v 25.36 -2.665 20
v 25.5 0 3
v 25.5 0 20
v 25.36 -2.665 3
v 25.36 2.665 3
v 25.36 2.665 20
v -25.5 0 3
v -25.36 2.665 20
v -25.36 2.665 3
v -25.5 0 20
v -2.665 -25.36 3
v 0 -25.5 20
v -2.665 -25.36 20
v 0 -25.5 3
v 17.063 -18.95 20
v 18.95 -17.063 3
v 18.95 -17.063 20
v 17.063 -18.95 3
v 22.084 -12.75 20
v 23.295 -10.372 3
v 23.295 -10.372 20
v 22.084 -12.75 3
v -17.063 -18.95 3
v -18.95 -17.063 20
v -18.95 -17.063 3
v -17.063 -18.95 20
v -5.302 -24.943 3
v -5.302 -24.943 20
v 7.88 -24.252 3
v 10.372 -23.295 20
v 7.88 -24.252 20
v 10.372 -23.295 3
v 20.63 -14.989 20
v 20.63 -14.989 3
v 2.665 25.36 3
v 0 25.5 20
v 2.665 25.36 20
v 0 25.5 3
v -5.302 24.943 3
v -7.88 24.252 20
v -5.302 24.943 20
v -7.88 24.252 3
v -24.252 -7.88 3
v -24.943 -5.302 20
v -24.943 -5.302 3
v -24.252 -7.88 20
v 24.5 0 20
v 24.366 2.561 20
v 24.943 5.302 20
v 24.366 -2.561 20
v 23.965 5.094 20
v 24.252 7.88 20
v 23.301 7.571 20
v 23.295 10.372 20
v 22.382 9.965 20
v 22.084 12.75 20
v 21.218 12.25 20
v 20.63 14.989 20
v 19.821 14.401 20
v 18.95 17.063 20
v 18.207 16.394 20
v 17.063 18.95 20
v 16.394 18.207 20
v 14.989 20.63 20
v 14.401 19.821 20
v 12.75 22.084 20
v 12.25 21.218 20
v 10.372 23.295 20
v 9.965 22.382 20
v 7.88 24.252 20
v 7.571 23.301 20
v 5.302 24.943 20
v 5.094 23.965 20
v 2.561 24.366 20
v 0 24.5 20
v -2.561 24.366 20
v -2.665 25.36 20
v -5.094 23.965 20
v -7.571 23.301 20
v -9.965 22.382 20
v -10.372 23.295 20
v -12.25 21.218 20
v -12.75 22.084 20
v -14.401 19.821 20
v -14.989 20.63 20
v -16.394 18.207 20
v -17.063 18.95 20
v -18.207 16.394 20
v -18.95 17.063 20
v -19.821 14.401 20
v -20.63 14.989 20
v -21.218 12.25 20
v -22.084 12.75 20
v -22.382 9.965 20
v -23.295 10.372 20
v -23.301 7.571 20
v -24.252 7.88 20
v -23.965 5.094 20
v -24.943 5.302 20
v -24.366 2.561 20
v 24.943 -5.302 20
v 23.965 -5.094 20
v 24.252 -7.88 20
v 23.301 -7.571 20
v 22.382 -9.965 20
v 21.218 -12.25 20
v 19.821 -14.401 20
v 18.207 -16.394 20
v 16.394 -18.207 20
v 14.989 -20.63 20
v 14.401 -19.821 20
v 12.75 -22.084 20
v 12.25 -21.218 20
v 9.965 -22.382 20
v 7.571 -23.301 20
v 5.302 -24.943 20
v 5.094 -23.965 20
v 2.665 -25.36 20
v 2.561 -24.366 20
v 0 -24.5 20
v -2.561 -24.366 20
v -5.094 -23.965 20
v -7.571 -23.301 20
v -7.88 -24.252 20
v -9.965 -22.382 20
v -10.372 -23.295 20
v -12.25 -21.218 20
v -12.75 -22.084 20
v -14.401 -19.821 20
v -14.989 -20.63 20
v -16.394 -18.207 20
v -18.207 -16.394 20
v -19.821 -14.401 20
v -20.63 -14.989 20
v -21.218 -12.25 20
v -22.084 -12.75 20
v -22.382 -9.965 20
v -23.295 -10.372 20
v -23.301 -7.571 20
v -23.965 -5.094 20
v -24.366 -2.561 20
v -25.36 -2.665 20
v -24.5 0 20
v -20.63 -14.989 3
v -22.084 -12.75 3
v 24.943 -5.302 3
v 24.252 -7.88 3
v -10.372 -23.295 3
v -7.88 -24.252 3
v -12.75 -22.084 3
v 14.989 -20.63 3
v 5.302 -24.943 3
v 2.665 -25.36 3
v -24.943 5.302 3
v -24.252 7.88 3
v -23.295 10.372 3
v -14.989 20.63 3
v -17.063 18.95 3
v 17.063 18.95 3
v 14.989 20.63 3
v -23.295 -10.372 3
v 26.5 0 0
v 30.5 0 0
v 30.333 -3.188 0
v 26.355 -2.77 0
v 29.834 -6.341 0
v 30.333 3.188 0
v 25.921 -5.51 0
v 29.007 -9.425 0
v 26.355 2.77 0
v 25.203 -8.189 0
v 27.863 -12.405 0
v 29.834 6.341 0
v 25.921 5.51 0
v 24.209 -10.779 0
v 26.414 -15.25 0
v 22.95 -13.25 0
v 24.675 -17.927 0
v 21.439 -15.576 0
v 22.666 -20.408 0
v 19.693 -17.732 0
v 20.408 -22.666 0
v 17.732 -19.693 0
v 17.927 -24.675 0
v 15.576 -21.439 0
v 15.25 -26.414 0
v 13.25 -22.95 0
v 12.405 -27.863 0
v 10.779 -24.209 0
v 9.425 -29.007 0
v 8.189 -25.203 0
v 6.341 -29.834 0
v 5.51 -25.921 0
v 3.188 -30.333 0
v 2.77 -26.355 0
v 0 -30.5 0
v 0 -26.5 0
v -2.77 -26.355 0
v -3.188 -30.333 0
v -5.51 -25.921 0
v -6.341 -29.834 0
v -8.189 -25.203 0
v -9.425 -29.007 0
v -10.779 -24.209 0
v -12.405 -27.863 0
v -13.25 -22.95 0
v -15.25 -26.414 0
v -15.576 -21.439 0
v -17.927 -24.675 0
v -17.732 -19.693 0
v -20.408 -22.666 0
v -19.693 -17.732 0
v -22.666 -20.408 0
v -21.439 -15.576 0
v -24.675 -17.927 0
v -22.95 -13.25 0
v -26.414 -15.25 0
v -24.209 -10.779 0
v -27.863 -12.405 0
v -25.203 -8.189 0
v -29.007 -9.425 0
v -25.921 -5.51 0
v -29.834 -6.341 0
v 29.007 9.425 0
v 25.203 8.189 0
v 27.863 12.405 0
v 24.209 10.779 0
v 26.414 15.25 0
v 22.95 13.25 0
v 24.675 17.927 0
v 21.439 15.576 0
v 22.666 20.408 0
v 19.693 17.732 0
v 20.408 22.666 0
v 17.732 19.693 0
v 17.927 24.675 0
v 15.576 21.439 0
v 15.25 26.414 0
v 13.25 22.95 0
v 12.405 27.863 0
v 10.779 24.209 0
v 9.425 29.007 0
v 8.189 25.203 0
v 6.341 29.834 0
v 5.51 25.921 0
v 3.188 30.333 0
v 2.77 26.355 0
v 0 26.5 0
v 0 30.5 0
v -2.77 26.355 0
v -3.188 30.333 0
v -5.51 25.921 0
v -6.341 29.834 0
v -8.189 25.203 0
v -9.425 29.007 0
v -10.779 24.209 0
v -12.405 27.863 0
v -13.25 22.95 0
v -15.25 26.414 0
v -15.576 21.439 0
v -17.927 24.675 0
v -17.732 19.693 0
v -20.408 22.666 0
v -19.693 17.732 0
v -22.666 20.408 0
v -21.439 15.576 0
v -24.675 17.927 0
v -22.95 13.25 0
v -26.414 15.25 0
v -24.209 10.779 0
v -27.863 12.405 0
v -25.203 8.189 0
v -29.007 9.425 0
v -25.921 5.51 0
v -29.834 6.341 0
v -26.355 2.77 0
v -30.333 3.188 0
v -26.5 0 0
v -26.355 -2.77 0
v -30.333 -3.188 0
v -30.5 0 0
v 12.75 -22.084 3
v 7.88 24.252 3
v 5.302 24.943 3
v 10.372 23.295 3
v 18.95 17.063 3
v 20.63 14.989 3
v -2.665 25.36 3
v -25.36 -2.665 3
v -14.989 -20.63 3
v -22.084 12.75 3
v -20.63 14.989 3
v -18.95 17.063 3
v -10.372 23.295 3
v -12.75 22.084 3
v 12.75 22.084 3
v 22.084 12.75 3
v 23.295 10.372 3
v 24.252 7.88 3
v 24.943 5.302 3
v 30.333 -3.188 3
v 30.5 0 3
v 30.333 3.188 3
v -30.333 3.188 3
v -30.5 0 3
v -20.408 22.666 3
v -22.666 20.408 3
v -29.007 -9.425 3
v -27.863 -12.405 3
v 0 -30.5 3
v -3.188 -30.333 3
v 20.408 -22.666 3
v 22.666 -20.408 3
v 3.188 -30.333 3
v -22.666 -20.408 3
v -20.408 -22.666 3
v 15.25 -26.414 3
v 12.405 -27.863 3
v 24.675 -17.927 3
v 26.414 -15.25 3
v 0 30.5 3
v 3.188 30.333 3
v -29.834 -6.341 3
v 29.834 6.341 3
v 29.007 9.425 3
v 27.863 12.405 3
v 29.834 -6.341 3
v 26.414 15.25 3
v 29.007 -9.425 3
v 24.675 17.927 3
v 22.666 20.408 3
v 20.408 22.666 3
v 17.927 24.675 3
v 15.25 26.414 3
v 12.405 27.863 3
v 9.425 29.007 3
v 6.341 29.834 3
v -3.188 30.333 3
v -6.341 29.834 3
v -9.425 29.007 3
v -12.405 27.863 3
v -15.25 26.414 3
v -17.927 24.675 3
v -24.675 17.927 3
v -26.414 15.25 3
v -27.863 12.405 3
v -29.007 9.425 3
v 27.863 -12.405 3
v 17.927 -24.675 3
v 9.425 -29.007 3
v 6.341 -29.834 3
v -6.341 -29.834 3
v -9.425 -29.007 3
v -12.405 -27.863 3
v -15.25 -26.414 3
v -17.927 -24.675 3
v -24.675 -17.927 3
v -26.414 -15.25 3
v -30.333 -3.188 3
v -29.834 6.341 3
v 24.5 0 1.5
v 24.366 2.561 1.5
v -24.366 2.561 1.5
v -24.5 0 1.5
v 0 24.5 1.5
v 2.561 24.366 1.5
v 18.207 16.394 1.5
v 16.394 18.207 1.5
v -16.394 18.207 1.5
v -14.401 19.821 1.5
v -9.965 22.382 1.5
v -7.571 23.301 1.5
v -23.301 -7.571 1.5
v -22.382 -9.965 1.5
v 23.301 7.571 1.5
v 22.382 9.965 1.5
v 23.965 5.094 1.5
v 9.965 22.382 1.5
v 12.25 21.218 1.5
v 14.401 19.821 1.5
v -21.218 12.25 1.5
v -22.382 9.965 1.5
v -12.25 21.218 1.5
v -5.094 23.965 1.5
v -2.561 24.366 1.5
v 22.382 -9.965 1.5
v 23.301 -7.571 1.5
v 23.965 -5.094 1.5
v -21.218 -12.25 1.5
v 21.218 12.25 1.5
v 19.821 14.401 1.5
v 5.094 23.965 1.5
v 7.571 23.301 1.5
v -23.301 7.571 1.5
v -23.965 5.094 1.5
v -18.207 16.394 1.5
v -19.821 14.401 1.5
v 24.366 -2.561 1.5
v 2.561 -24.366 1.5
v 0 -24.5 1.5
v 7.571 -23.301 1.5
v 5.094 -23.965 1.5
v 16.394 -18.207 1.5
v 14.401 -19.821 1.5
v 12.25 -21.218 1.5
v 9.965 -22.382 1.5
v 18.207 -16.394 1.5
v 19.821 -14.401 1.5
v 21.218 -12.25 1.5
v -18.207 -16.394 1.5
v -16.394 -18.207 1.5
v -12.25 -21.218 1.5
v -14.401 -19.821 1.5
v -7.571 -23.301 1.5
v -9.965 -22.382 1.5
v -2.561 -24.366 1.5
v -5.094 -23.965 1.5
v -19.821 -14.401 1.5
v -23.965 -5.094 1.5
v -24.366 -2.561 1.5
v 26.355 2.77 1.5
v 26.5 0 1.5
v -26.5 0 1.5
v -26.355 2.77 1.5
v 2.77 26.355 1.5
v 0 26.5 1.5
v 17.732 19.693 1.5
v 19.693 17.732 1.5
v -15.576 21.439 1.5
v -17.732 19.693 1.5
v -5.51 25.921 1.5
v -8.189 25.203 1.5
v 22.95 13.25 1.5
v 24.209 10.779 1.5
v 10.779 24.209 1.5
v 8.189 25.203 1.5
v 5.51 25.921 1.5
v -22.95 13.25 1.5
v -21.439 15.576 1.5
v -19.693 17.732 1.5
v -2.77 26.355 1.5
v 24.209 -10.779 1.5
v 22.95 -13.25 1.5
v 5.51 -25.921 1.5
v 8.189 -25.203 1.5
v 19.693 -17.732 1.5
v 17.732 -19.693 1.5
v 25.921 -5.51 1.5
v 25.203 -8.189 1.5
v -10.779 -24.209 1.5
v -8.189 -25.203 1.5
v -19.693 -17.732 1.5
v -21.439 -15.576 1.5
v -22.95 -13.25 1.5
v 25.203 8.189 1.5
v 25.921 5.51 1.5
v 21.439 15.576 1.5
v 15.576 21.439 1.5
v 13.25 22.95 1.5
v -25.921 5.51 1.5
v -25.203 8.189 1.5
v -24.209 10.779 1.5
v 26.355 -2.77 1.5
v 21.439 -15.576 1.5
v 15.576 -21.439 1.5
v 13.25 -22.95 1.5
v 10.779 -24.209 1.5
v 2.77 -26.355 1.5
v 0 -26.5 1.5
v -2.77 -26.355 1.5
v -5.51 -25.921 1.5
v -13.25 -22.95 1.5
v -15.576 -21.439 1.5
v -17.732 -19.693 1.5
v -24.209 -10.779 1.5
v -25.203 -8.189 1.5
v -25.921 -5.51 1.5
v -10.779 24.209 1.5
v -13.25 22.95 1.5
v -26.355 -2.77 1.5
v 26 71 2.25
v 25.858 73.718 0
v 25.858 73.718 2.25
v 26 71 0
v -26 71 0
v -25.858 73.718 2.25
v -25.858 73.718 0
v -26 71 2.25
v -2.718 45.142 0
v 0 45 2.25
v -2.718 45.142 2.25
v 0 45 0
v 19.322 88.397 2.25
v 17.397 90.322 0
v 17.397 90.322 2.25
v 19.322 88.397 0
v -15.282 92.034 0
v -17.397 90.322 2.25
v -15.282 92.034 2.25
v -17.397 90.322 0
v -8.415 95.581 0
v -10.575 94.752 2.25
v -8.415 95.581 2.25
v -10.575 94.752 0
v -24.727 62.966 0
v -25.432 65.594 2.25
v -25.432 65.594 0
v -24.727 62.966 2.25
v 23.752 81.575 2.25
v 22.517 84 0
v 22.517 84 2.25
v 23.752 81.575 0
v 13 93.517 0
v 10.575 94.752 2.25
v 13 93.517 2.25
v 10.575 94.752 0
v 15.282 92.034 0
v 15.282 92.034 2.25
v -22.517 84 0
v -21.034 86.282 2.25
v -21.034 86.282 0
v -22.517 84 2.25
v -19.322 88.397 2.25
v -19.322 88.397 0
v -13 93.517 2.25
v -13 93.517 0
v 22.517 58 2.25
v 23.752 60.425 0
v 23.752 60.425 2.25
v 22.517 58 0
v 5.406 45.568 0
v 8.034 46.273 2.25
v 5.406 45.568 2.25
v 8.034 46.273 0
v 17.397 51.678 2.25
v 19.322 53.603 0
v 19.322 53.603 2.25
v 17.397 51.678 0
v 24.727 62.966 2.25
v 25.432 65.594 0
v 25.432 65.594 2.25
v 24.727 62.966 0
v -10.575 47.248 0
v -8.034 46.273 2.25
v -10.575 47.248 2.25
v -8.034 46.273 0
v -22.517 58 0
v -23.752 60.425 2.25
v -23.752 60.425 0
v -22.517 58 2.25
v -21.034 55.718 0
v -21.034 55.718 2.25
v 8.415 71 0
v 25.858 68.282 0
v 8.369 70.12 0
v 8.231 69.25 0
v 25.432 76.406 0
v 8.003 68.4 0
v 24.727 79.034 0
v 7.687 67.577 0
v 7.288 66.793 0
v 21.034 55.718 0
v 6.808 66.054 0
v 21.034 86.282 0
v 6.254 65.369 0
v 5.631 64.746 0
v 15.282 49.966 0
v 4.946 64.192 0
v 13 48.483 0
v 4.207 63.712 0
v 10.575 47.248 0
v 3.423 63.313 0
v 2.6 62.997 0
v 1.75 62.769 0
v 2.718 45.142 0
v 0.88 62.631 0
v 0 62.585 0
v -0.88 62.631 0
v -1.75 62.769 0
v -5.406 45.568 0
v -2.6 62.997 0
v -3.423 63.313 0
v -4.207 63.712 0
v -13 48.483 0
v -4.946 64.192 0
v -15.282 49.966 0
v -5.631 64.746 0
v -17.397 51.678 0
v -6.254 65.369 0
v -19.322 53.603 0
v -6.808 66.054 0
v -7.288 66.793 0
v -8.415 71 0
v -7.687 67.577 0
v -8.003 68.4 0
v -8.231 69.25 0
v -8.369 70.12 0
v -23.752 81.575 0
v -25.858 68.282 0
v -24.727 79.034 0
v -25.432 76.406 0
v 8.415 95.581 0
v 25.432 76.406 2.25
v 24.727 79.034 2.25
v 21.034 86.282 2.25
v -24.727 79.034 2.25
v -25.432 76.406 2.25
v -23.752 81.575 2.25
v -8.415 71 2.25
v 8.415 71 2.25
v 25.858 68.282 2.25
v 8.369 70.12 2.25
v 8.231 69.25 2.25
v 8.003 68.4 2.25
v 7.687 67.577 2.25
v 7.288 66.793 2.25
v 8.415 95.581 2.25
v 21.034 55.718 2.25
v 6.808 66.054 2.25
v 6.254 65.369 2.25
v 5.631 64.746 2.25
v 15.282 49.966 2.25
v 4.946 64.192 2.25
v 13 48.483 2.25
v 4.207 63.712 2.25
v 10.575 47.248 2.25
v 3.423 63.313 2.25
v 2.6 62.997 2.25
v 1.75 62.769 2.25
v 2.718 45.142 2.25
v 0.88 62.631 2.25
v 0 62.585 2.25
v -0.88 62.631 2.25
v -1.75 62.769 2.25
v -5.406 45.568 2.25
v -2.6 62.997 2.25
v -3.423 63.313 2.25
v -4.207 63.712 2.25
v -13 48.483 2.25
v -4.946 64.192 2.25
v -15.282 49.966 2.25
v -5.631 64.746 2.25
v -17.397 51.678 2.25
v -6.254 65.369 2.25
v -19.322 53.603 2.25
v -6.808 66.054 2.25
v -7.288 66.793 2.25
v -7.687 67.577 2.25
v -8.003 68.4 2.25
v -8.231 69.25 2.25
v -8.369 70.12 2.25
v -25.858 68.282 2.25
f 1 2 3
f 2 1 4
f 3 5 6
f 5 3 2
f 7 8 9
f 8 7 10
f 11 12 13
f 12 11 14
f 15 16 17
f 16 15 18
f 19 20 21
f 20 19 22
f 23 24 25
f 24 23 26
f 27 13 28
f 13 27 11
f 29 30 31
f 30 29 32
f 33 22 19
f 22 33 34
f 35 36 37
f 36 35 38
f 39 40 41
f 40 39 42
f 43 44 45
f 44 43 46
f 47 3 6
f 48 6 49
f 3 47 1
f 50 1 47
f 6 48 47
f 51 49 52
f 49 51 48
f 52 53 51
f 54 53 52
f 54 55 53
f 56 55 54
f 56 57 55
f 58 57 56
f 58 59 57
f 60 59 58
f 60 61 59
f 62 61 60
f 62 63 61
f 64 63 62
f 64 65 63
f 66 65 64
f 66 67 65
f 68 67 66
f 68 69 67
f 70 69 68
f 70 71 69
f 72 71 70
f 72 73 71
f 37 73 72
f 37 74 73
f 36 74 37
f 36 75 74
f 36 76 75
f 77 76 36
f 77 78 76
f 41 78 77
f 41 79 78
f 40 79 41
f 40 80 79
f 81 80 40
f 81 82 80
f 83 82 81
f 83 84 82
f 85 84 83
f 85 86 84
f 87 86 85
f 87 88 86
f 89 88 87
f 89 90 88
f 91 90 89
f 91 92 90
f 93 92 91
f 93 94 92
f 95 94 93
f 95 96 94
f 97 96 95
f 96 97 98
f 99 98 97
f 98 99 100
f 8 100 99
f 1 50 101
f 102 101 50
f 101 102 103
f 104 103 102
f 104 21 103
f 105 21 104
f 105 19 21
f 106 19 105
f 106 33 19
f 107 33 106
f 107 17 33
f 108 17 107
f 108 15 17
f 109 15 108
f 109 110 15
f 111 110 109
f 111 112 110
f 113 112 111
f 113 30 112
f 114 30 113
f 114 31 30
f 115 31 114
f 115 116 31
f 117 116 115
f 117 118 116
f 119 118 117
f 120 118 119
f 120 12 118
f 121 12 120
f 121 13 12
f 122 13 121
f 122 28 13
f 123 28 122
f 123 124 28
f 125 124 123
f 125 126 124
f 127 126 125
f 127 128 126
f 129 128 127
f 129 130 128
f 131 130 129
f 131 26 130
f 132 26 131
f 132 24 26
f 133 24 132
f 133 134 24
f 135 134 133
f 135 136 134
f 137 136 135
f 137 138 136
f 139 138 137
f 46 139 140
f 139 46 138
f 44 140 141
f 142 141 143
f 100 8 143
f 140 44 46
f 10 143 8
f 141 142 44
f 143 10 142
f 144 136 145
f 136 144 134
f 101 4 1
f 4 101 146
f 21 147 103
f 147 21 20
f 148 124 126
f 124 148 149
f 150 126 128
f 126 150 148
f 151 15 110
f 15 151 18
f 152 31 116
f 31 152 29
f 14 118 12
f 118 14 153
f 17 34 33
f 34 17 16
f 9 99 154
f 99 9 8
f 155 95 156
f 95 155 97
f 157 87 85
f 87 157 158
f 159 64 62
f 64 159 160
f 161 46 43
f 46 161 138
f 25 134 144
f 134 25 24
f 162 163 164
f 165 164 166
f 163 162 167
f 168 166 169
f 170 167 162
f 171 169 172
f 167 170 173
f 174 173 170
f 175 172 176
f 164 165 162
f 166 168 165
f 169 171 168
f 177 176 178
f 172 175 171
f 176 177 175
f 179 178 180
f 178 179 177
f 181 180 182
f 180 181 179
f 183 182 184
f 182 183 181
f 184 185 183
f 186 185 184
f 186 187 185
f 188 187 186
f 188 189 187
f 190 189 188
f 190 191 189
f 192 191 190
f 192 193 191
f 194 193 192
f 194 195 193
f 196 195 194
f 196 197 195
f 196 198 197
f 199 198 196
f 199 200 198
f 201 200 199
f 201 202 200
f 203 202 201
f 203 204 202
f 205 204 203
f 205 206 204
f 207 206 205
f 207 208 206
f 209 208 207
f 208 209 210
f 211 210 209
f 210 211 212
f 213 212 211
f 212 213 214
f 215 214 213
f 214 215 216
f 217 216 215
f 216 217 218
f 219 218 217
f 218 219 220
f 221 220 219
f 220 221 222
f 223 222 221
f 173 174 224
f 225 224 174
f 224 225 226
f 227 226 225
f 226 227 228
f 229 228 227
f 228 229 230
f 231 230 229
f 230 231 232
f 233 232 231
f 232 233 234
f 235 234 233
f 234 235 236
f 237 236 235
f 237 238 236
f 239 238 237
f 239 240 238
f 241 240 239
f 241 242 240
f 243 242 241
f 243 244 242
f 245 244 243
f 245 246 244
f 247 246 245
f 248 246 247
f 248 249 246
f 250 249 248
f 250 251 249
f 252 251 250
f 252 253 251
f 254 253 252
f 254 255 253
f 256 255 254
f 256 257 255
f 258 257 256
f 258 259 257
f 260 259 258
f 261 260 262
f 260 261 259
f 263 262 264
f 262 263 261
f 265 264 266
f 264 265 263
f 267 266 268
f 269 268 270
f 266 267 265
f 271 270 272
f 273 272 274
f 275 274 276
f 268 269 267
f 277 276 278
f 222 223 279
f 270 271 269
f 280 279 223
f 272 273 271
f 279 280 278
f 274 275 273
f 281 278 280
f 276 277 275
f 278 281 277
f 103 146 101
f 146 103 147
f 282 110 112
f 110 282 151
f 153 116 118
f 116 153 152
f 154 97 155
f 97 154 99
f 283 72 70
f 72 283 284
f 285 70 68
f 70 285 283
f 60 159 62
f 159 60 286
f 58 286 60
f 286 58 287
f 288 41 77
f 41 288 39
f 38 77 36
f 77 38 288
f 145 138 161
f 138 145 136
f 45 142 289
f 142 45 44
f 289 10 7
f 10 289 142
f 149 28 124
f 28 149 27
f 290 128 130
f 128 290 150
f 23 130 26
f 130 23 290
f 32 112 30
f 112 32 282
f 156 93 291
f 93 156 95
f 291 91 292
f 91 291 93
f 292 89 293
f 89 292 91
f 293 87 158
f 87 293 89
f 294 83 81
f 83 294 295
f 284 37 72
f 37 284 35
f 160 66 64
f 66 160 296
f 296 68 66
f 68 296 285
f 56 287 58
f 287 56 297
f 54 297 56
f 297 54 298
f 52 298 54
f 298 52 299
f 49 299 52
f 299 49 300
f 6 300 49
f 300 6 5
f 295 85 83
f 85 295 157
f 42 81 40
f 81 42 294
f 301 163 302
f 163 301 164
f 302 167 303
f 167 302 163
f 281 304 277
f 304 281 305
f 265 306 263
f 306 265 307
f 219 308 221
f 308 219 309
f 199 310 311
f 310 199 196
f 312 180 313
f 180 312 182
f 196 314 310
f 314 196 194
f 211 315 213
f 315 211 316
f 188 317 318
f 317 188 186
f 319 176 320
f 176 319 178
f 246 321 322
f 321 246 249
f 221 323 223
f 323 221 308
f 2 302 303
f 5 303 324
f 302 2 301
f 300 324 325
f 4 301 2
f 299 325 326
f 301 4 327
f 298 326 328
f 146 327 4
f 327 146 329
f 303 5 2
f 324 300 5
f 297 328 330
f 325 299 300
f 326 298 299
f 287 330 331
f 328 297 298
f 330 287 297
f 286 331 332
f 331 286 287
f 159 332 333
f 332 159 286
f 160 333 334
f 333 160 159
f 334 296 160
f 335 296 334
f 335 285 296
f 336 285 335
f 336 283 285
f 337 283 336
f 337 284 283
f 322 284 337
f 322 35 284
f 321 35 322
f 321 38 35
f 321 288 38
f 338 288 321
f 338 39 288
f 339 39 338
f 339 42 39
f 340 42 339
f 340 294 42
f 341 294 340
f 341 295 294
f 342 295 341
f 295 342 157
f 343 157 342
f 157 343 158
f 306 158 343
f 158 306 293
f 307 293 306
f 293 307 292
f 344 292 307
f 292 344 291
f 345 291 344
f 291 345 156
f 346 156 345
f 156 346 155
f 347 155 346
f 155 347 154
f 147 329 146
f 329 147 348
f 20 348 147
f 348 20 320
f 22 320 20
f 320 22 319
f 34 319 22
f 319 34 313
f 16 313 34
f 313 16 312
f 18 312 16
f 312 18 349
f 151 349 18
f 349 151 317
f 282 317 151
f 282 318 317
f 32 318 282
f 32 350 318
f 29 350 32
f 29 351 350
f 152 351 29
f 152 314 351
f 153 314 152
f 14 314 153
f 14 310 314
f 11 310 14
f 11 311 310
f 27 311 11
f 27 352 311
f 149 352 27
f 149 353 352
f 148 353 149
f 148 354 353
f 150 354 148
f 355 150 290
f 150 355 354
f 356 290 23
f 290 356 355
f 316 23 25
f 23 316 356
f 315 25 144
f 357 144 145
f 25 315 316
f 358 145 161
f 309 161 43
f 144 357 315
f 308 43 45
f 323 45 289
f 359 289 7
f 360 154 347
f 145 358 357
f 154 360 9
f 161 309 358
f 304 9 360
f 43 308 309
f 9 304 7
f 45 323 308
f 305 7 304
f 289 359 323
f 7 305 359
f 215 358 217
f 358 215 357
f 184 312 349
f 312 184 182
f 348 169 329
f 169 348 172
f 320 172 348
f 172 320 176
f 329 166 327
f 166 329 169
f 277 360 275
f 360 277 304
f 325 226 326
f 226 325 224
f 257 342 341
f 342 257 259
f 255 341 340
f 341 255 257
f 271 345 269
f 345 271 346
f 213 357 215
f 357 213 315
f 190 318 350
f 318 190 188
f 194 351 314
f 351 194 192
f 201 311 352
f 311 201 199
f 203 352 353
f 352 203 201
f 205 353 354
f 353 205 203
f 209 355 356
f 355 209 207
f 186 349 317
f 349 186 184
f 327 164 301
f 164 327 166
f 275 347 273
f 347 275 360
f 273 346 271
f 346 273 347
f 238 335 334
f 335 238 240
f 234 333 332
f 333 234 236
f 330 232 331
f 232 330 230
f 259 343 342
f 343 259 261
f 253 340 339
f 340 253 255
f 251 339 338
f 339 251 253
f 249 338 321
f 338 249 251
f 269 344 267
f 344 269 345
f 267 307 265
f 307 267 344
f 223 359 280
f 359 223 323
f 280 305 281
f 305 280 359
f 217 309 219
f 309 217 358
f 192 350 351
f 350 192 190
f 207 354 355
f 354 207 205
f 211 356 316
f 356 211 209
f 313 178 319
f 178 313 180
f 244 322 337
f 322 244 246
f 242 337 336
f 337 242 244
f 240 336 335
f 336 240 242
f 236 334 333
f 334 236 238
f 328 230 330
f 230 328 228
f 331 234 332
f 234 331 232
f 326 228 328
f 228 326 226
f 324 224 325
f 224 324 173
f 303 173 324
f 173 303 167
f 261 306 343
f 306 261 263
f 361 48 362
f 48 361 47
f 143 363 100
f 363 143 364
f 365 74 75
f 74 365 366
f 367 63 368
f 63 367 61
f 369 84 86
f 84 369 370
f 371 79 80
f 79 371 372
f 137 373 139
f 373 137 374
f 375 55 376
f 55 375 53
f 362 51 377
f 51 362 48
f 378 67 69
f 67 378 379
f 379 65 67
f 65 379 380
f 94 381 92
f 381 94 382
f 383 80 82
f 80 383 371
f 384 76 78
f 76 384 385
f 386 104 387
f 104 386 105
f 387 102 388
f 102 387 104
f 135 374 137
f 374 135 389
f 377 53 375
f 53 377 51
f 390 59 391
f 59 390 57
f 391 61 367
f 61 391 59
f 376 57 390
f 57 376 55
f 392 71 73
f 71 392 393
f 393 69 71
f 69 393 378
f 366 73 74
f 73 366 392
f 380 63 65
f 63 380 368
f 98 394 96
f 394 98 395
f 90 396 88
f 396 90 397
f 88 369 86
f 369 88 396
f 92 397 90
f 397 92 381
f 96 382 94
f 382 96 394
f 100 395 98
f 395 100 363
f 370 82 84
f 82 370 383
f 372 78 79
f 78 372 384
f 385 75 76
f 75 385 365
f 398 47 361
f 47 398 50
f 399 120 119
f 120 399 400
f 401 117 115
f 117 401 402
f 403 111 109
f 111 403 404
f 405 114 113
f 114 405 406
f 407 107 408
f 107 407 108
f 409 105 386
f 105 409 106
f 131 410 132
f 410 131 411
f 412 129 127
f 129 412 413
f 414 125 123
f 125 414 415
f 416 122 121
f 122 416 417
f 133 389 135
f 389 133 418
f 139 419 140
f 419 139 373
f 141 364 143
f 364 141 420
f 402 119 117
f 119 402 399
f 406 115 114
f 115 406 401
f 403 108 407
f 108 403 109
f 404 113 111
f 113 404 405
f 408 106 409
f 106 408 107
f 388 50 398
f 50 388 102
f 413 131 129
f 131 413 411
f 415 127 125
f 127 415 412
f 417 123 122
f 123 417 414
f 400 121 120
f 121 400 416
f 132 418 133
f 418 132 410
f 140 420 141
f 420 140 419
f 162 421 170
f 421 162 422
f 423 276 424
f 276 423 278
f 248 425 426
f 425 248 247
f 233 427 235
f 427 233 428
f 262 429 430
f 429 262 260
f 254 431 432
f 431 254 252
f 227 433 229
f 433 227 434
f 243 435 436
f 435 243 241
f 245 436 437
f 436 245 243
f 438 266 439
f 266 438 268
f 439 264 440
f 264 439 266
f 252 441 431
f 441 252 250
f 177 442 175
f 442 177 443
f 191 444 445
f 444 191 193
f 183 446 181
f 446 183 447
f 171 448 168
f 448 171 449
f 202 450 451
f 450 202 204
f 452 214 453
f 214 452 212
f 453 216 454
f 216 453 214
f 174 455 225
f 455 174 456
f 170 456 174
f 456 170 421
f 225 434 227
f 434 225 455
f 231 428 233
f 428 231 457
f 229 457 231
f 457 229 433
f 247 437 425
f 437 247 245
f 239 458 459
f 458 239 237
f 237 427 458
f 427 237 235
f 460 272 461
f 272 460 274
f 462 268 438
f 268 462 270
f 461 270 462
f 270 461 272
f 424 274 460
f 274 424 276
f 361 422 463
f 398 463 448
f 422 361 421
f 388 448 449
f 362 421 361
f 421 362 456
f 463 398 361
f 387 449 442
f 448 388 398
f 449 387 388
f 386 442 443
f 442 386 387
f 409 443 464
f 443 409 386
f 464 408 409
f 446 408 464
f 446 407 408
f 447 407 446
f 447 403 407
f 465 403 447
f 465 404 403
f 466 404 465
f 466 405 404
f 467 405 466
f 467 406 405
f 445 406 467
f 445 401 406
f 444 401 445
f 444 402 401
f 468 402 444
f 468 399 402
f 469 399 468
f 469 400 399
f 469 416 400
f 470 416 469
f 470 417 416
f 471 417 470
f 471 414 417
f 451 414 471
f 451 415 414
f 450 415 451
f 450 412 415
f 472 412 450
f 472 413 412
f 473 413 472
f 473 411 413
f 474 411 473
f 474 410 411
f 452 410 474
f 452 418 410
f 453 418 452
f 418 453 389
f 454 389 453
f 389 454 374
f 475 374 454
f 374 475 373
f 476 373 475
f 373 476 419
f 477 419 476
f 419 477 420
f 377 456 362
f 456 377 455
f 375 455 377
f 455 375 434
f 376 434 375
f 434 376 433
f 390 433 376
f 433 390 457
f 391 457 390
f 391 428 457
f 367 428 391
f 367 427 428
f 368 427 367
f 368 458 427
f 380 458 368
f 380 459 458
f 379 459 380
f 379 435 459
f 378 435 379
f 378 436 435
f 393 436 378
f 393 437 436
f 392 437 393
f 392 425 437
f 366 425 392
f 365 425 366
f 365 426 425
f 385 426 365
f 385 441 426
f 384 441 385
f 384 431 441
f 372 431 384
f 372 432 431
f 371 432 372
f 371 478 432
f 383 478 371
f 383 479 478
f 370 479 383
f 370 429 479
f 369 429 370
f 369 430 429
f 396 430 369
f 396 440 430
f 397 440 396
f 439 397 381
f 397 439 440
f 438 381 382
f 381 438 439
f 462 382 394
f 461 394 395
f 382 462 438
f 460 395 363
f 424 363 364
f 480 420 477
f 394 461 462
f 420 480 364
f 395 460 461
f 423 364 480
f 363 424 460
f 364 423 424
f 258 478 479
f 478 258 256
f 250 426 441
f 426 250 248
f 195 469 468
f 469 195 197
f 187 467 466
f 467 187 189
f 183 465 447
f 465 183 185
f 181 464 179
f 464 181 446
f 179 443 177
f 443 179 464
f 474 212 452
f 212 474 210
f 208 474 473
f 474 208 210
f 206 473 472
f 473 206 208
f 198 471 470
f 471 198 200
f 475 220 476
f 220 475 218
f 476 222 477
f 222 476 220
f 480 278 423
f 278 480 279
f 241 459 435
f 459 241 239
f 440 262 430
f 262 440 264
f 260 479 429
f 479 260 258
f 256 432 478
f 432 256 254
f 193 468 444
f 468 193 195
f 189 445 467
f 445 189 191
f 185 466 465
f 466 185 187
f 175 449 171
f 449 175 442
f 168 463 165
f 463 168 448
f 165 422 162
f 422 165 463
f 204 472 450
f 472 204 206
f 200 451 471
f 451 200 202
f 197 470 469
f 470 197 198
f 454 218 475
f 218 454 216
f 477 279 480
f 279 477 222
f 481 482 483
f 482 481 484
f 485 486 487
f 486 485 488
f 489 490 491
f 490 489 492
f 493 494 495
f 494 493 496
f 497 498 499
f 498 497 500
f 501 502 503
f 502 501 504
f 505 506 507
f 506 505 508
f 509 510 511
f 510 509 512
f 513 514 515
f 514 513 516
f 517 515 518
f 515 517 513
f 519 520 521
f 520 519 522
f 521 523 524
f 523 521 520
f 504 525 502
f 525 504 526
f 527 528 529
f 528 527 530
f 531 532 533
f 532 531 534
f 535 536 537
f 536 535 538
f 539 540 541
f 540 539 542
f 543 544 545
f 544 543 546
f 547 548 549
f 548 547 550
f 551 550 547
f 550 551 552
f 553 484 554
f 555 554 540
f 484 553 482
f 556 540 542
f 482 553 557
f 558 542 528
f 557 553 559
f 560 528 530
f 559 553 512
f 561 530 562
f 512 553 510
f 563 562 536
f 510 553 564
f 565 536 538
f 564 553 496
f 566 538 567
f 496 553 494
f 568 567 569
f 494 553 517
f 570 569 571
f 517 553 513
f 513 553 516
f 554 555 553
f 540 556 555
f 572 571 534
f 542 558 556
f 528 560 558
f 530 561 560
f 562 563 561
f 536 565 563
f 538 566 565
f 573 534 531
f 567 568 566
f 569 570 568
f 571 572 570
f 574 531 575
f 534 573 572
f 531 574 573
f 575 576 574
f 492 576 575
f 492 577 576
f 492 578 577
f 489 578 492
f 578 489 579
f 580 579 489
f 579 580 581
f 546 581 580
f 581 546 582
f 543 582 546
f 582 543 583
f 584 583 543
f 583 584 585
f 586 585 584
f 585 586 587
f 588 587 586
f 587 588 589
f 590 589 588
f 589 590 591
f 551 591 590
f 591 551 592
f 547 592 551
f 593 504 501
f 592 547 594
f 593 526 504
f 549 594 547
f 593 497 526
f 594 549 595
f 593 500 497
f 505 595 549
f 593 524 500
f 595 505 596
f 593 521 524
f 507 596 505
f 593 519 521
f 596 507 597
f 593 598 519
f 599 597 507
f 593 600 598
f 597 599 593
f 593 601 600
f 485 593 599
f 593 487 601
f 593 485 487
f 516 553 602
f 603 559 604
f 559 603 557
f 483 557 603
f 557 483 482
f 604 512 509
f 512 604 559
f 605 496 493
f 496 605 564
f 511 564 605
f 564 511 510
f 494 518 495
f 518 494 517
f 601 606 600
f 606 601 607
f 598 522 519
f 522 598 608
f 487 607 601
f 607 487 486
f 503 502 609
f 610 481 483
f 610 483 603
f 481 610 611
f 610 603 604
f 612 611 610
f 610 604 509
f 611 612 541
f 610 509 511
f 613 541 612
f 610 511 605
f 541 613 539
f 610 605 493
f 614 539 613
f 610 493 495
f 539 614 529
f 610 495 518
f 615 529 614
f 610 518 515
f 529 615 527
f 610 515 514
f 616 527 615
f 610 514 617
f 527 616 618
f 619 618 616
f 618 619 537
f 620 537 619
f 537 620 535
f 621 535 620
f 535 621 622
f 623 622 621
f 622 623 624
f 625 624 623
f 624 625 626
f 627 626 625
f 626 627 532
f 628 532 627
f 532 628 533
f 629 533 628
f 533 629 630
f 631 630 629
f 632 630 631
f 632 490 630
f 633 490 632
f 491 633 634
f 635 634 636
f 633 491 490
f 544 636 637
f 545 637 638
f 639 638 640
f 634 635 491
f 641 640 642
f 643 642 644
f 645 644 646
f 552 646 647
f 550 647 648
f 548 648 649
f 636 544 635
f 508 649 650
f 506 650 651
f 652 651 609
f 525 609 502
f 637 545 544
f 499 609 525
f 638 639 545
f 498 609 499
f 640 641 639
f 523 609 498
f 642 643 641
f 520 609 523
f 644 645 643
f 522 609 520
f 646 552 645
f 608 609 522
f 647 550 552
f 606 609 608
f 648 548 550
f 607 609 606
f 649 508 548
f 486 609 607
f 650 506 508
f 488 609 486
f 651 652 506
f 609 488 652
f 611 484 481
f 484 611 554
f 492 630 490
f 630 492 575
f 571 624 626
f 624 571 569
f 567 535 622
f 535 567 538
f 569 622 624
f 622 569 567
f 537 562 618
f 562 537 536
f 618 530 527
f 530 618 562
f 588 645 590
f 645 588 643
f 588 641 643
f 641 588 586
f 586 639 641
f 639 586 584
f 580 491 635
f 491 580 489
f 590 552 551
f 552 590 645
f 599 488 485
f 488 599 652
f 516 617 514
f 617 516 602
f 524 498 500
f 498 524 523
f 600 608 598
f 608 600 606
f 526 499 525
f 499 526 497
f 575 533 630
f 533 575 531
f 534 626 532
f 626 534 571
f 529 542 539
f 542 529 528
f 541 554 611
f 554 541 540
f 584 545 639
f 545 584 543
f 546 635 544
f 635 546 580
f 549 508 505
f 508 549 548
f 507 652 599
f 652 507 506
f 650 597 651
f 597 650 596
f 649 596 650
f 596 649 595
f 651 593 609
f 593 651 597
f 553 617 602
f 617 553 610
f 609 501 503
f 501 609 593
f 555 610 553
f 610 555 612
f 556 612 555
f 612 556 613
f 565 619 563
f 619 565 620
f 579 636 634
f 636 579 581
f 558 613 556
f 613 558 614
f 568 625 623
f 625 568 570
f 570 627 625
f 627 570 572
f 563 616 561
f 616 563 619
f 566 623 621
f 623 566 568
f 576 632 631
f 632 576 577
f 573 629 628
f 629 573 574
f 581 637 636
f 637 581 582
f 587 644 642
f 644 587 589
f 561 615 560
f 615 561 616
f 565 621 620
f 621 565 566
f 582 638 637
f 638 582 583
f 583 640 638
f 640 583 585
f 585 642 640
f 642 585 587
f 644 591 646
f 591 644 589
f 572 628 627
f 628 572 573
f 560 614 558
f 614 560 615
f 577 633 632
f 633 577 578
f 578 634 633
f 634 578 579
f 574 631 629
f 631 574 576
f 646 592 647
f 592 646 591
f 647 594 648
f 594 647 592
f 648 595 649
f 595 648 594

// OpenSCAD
$fn = 60;

HoleRad = 51/2;
Wall = 1;
LipRad = HoleRad + 5;

module BaseShape() {
  union() {
    linear_extrude(20) circle(r=HoleRad);
    linear_extrude(3) circle(r=LipRad);
  }
}

module CutOuts() {
  translate([0, 0, -1]) cylinder(r=HoleRad - Wall, h=22);
  translate([0, 0, -1]) cylinder(r=HoleRad + Wall, h=2.5);
}

difference() {
  BaseShape();
  CutOuts();
}

translate([0, LipRad*2+10, 0])
difference() {
  color("red") cylinder(r=HoleRad + Wall - 0.5, h=2.25);
  translate([0, 0, -1]) linear_extrude(5) hull() {
    translate([0, 0, 0]) circle(r=HoleRad*0.33);
    translate([0, 100, 0]) circle(r=HoleRad*0.33);
  }
}
